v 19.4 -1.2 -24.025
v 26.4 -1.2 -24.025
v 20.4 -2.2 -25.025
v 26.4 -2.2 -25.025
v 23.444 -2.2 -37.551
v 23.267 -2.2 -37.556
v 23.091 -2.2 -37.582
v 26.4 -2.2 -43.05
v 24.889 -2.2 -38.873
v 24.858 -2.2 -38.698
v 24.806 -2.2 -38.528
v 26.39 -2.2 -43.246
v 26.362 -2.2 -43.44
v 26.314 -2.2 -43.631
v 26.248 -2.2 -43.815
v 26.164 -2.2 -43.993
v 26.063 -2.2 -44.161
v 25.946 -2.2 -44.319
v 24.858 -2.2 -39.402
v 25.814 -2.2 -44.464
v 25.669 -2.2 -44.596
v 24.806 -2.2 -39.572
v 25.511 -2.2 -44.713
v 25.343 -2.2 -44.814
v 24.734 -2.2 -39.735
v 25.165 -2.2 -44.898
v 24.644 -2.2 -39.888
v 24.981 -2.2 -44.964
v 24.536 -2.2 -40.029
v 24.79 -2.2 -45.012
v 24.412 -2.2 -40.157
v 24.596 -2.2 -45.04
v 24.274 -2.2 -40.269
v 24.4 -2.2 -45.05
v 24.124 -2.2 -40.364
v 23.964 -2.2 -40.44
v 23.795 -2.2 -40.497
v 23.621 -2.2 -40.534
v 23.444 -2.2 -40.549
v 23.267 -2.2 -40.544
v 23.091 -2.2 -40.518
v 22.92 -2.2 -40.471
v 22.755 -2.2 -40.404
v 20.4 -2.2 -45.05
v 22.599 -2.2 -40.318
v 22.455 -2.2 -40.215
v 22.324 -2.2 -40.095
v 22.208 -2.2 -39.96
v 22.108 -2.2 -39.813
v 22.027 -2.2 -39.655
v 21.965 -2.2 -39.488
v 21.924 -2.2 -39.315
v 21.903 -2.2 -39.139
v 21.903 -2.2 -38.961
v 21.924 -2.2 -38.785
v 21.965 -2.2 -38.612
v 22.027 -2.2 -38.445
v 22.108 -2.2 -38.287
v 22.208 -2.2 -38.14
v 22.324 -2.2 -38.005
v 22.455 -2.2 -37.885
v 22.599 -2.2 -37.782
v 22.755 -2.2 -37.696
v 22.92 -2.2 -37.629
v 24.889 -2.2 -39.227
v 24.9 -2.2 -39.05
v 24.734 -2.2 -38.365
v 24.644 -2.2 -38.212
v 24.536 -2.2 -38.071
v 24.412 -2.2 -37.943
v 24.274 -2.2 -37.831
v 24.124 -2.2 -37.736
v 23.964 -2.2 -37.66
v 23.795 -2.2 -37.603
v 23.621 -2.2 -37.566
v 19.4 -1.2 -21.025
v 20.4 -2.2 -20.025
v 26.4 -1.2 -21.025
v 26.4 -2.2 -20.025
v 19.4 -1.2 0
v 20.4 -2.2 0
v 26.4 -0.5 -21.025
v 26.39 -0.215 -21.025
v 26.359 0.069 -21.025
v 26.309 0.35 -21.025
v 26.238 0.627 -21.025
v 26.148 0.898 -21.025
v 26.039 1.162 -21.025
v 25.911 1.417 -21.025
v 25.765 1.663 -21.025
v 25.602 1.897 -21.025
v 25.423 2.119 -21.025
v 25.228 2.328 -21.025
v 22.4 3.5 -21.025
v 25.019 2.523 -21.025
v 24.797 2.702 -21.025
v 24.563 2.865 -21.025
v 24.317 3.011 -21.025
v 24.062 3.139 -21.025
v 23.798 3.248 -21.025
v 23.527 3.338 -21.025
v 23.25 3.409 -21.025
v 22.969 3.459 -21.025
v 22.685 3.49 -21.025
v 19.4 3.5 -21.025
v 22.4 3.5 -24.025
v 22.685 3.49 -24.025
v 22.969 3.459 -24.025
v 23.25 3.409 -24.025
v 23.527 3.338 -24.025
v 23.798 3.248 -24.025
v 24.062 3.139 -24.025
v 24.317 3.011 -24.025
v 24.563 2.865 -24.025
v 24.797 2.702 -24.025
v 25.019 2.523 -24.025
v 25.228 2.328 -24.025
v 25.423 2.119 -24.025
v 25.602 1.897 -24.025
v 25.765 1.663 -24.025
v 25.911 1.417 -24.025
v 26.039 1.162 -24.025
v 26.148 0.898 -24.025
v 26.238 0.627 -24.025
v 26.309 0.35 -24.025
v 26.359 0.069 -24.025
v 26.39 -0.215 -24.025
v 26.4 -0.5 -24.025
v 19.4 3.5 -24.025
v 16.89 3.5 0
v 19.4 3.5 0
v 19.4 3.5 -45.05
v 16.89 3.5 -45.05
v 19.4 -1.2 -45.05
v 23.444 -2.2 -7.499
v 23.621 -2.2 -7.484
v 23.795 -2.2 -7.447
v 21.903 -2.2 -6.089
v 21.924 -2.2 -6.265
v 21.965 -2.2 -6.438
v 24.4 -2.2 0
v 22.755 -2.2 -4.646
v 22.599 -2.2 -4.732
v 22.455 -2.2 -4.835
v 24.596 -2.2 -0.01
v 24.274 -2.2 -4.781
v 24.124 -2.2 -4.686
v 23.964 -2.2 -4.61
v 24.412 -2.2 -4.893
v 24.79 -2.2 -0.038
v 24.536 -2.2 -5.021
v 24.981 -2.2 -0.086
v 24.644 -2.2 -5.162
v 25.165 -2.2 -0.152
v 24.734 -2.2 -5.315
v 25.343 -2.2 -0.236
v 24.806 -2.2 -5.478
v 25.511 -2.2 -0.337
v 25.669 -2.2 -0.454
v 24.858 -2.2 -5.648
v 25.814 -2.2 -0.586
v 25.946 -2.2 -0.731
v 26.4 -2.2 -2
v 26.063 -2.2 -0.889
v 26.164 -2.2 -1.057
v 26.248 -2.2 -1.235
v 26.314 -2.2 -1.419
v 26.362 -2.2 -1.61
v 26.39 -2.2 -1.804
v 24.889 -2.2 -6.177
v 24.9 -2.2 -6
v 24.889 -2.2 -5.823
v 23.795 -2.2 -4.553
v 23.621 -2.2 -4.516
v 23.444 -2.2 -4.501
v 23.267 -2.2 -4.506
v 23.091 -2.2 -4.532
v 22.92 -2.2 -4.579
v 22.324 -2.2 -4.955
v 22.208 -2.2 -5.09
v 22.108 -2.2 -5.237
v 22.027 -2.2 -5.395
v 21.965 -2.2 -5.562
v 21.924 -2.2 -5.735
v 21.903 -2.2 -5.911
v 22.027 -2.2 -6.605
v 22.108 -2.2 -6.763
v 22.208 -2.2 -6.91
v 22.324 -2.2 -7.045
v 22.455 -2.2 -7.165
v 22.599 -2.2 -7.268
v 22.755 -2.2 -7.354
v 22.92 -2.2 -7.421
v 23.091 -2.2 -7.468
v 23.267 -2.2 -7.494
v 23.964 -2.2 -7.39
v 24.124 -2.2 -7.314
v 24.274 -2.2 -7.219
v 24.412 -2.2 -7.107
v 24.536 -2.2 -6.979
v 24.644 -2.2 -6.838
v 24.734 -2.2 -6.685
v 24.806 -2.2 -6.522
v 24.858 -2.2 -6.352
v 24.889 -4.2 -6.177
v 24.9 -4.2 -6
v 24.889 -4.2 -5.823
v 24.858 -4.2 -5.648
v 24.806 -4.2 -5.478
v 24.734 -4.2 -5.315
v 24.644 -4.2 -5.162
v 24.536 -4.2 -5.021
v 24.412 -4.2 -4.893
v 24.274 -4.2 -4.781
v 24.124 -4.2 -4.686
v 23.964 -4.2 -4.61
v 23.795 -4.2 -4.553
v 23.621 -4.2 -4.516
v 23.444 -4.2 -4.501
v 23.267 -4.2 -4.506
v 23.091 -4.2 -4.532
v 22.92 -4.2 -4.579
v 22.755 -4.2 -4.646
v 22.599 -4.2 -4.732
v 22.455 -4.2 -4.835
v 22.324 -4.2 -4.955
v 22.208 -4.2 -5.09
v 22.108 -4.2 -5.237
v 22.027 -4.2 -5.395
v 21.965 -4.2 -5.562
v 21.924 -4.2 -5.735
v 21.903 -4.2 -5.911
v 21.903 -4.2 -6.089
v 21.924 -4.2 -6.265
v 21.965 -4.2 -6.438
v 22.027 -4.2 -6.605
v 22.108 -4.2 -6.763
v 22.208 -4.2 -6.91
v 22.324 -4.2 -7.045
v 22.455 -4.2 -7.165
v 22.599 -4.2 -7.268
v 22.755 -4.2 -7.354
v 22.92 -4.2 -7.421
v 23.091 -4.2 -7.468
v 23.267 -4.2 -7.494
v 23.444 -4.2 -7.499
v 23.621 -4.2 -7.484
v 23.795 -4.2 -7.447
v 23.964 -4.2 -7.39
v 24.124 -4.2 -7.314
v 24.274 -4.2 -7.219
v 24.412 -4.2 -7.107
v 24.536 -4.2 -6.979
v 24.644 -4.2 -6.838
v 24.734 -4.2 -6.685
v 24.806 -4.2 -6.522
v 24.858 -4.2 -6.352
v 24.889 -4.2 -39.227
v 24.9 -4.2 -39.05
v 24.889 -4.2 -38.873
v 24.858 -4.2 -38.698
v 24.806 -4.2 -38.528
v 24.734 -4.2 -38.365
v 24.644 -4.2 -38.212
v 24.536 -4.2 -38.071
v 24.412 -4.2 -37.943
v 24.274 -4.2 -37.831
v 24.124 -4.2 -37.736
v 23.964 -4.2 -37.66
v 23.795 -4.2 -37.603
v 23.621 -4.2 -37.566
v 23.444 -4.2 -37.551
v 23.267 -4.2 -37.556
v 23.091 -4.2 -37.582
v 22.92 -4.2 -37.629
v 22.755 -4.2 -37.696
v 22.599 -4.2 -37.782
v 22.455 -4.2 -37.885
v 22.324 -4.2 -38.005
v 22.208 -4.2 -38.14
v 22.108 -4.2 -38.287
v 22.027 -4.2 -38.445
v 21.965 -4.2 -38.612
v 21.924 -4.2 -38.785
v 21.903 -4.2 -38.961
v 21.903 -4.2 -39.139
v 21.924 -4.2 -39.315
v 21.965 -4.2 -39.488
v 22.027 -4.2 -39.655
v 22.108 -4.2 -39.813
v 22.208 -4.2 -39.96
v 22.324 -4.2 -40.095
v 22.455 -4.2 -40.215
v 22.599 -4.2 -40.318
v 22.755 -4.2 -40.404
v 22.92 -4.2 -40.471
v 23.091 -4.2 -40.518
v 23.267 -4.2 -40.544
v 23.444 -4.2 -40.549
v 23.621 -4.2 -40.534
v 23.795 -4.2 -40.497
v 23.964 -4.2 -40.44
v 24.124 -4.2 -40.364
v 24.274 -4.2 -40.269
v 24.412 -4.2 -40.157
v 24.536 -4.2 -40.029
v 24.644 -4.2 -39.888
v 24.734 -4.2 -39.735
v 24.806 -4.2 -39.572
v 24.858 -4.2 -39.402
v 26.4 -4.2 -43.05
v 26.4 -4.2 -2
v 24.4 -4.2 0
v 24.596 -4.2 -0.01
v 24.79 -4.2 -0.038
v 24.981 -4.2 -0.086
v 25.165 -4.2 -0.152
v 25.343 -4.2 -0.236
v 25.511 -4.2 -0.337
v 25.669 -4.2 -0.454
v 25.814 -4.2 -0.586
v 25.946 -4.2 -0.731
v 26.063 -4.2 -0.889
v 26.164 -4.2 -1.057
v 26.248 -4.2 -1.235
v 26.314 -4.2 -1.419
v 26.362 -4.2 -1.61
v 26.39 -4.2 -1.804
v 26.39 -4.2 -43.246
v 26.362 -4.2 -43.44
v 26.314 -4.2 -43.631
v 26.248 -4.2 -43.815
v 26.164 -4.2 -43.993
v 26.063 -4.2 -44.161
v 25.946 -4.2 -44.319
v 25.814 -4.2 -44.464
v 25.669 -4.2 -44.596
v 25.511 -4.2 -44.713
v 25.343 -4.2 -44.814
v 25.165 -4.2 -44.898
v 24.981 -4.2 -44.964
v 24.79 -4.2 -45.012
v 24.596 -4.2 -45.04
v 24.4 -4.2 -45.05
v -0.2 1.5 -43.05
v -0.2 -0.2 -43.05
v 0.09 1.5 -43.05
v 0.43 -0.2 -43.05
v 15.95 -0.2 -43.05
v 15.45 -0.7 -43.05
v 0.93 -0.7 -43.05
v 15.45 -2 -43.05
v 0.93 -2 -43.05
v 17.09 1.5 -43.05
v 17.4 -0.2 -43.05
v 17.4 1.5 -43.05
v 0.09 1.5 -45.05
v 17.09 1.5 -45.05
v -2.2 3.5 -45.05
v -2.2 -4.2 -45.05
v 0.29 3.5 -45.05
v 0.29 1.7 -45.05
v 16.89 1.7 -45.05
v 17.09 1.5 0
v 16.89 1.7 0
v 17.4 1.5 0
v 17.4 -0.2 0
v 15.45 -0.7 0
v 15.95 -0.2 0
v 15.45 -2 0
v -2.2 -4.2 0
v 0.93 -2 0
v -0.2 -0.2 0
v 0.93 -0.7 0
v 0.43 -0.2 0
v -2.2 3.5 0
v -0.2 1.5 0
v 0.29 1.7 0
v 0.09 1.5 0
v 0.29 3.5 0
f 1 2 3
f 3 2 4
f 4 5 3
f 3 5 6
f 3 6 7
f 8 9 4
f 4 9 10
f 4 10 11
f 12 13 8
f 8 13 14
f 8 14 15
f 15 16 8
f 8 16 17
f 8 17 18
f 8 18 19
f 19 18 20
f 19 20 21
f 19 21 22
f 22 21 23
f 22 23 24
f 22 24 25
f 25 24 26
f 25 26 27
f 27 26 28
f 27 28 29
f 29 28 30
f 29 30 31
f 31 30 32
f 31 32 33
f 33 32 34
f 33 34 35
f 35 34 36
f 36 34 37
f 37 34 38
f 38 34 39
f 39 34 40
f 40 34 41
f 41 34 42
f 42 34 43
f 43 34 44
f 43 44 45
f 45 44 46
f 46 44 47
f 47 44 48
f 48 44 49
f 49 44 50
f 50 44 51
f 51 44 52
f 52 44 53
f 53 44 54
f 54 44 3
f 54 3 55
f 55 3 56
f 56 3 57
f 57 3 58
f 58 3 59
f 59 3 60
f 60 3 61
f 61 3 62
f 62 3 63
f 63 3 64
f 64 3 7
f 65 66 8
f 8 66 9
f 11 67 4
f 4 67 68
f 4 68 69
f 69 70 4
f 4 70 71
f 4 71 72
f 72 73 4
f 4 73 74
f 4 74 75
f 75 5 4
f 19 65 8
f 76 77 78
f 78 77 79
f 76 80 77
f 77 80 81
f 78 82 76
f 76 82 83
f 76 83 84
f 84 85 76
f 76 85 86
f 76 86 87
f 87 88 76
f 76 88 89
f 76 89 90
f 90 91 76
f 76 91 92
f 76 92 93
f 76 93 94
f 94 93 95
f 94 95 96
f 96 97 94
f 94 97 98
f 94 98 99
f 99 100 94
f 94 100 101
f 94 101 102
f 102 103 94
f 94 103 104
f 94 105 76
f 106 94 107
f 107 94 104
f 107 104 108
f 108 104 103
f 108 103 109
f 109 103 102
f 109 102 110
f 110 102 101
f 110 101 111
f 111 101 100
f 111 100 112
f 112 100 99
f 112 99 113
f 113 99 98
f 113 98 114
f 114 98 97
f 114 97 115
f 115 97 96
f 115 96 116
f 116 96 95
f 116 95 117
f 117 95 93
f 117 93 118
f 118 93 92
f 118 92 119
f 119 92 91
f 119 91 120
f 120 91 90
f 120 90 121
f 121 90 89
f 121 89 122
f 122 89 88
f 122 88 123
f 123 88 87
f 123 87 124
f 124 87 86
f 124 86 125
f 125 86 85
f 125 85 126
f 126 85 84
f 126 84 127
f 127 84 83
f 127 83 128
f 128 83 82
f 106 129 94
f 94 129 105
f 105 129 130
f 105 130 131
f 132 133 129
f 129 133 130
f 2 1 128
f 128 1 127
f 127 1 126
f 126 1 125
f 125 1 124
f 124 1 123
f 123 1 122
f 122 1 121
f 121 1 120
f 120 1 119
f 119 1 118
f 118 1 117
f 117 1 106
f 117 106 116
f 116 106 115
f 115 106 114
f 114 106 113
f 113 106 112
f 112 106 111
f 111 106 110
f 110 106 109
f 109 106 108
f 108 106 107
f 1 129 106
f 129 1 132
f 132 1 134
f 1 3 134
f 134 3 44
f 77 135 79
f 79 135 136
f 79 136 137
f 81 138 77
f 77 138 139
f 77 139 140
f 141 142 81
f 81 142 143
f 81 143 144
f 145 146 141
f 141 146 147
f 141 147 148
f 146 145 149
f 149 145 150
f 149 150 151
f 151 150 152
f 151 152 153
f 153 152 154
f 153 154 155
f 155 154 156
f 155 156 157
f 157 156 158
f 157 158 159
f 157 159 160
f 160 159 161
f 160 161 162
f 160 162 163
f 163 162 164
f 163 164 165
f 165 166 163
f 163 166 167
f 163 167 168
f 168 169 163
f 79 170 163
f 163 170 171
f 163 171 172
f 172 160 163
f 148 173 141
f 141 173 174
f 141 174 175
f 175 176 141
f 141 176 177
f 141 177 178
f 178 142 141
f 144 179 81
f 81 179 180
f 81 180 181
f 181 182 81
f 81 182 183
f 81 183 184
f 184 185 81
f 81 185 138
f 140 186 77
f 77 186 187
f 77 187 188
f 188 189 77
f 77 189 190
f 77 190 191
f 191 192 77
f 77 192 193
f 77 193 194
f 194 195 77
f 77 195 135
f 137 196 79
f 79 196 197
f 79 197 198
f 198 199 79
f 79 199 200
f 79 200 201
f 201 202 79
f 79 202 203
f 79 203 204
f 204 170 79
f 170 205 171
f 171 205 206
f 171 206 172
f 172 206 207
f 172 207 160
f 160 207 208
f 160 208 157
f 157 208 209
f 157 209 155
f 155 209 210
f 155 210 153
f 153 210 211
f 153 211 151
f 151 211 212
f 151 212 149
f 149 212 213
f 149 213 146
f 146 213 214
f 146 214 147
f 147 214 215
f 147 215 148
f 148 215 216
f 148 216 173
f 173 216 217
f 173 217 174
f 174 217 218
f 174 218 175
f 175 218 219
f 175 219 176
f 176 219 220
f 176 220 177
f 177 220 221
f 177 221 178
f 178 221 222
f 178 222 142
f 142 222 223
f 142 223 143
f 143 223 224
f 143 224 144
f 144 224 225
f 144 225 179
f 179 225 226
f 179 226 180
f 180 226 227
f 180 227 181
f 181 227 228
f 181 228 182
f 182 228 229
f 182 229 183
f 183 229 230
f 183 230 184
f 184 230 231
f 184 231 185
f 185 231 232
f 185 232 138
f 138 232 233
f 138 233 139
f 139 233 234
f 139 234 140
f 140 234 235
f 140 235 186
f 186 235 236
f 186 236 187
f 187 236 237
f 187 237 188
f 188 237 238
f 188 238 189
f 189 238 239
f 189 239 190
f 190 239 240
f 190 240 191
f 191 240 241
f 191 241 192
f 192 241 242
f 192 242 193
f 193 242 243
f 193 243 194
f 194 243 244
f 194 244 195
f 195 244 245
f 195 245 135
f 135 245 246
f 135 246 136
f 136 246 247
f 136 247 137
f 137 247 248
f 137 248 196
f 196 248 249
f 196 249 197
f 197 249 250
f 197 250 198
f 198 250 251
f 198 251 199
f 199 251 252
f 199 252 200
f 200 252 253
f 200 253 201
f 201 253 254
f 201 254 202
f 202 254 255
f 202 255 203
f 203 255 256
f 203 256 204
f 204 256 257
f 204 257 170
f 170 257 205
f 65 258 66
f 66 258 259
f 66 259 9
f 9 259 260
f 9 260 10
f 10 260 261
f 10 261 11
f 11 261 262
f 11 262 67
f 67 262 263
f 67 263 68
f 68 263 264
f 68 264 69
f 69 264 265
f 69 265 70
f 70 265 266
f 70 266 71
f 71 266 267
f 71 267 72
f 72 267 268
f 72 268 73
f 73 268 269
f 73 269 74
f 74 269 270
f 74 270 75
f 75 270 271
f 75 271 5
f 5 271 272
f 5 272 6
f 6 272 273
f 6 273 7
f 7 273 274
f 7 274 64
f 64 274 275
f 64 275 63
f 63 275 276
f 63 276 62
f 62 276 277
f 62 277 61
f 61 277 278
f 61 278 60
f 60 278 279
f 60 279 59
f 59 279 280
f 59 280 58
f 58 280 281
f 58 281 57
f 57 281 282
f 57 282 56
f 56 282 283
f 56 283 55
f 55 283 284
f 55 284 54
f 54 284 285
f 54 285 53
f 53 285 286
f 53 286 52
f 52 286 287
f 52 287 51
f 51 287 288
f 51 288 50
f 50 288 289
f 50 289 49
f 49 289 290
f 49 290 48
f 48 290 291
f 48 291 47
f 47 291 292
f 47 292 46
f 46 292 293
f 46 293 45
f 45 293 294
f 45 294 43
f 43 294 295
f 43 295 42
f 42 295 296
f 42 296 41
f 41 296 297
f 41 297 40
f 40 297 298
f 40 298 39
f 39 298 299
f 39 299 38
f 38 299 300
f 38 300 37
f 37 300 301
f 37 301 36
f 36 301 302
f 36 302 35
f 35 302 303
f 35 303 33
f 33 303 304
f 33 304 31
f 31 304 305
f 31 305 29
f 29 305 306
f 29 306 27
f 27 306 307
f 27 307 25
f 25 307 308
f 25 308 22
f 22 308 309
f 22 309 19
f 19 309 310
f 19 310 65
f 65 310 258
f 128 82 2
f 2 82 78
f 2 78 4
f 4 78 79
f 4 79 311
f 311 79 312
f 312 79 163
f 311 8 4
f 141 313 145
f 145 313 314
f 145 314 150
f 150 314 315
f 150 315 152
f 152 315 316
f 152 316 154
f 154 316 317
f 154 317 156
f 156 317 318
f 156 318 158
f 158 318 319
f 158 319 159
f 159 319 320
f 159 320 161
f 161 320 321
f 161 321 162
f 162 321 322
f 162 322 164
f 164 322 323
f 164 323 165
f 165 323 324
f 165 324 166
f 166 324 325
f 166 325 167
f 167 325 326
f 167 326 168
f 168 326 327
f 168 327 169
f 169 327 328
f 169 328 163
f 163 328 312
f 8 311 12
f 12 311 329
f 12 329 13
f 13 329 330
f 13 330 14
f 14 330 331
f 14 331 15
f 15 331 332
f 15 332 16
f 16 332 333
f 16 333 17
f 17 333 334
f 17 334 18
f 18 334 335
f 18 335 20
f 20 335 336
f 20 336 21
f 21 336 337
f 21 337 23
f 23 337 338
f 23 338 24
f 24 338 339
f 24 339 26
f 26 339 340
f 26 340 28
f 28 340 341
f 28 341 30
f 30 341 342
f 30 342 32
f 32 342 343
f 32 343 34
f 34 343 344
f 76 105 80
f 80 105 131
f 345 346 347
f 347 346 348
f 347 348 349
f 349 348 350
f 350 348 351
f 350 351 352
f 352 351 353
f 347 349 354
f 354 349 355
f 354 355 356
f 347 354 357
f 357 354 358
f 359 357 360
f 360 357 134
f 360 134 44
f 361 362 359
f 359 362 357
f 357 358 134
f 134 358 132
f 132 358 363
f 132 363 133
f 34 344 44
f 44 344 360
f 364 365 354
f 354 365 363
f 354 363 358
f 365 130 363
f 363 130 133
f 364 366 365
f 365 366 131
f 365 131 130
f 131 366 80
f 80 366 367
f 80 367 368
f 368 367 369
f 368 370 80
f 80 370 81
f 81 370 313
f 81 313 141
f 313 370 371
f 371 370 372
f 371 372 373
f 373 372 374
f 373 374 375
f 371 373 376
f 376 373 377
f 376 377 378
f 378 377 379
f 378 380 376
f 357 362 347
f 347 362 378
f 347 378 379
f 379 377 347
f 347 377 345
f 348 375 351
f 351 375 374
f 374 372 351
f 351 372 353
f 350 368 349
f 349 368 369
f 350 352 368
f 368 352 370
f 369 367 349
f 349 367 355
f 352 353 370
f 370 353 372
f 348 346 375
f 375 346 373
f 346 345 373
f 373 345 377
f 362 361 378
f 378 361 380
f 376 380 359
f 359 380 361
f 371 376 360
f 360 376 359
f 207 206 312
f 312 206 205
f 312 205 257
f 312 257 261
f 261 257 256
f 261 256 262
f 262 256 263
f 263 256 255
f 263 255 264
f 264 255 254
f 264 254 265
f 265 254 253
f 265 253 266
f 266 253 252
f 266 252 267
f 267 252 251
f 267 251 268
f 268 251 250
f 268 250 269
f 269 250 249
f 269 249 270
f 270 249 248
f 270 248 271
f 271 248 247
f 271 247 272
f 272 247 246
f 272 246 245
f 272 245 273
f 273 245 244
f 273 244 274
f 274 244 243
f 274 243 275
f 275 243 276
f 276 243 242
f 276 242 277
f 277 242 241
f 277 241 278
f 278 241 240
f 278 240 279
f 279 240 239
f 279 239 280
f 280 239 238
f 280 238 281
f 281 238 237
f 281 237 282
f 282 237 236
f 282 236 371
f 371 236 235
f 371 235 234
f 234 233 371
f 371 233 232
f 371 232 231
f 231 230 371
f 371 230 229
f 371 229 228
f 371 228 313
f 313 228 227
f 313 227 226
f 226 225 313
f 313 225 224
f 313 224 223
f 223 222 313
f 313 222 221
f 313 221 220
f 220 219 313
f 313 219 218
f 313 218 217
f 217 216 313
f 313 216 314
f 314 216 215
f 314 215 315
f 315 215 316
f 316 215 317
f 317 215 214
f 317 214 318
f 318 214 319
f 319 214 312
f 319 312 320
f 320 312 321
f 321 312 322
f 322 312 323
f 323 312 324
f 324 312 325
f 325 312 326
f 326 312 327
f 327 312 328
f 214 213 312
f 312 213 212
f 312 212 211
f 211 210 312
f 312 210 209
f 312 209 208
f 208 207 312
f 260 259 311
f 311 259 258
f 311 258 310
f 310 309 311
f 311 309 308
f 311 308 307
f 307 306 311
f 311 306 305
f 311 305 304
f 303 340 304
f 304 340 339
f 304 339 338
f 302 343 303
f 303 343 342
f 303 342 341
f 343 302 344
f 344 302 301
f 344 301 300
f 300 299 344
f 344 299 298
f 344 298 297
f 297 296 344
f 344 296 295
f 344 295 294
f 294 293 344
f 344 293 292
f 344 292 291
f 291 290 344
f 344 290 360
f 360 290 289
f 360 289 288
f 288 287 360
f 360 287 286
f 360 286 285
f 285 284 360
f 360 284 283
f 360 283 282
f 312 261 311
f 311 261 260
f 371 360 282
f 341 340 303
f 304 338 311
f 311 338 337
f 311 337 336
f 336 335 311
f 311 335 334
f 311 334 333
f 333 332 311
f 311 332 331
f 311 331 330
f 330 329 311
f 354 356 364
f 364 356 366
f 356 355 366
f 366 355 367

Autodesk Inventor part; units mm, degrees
ref_plane "YZ Plane" through (0, 0, 0) normal (1, 0, 0) x (0, 1, 0)
ref_plane "XZ Plane" through (0, 0, 0) normal (0, 1, 0) x (-1, 0, 0)
sketch "Sketch1" plane through (0, 0, 0) normal (0, 0, 1) x (1, 0, 0)
  line L0 (0, 0) -> (0, 1.3) projected
  line L1 (0, 0) -> (17.2, 0) projected
  line L2 (17.2, 0) -> (17.2, 1.3) projected
  line L3 (0, 1.3) -> (17.2, 1.3) projected
  line L4 (-0.2, -0.2) -> (-0.2, 1.5)
  line L5 (17.4, 1.5) -> (17.4, -0.2)
  line L6 (-2.2, 3.5) -> (-2.2, -2.2)
  line L7 (19.4, -2.2) -> (19.4, 3.5)
  line L8 (0.49, 2.4) -> (0.49, 1.65)
  line L9 (0.29, 2.4) -> (0.29, 1.65)
  line L10 (16.69, 2.4) -> (16.69, 1.65)
  line L11 (16.89, 2.4) -> (16.89, 1.65)
  line L12 (16.89, 1.5) -> (16.89, 3.5)
  line L13 (0.29, 1.5) -> (0.29, 3.5)
  line L14 (19.4, 3.5) -> (16.89, 3.5)
  line L15 (0.29, 3.5) -> (-2.2, 3.5)
  line L16 (-0.2, 1.5) -> (0.29, 1.5)
  line L17 (16.89, 1.5) -> (17.4, 1.5)
  line L18 (15.45, -2) -> (0.93, -2)
  line L19 (-2, -2) -> (-2, 3.3)
  line L20 (19.2, 3.3) -> (19.2, -2)
  line L21 (1.13, -0.1) -> (1.13, 0)
  line L22 (0.93, -0.1) -> (0.93, 0)
  line L23 (0.93, 0) -> (0.93, -2)
  line L24 (15.25, -0.1) -> (15.25, 1.4)
  line L25 (15.45, -0.1) -> (15.45, 1.4)
  line L26 (15.45, 1.3) -> (15.45, -2)
  line L27 (-2.2, -2.2) -> (-2.2, -4.2)
  line L28 (-2.2, -4.2) -> (19.4, -4.2)
  line L29 (19.4, -4.2) -> (19.4, -2.2)
  line L30 (17.4, -0.2) -> (15.45, -0.2)
  line L31 (0.93, -0.2) -> (-0.2, -0.2)
  line L32 (0.49, -2.2) -> (1.13, -2.2)
  line L33 (15.25, -2.2) -> (16.89, -2.2)
  line L34 (-2.2, -2.2) -> (-2, -2.2)
  line L35 (-0.2, -2.2) -> (0.29, -2.2)
  line L36 (17.2, -2.2) -> (17.4, -2.2)
  line L37 (19.2, -2.2) -> (19.4, -2.2)
  line L38 (0.29, 3.3) -> (1.13, 3.3)
  line L39 (15.25, 3.3) -> (16.89, 3.3)
  dimension "d2" = 0.2
  dimension "d3" = 0.2
  dimension "d4" = 2
  dimension "d5" = 0.2
  dimension "d6" = 0.2
  dimension "d7" = 2
ref_plane "Work Plane1" through (0, 0, -43.05) normal (0, 0, -1) x (0, 1, 0)
extrude "Extrusion1" add sketch "Sketch1" against normal up to surface (43.05 mm away) contours L23 L18 L26 L30 L5 L17 L12 L11 L14 L7 L29 L28 L27 L6 L15 L13 L9 L16 L4 L31
chamfer "Chamfer1" distance 0.5 angle 45 2 edges at (15.45, -0.2, -21.525) (0.93, -0.2, -21.525)
chamfer "Chamfer2" distance 0.2 angle 45 2 edges at (0.29, 1.5, -21.525) (16.89, 1.5, -21.525)
sketch "Sketch2" plane through (19.4, -4.2, -43.05) normal (0, 0, -1) x (-1, 0, 0)
  line L0 (2.51, 5.9) -> (2.31, 5.7) projected
  line L1 (2.51, 7.7) -> (2.51, 5.9) projected
  line L2 (0, 7.7) -> (2.51, 7.7) projected
  line L3 (0, 0) -> (0, 7.7) projected
  line L4 (21.6, 0) -> (0, 0) projected
  line L5 (21.6, 7.7) -> (21.6, 0) projected
  line L6 (19.11, 7.7) -> (21.6, 7.7) projected
  line L7 (19.11, 5.9) -> (19.11, 7.7) projected
  line L8 (19.31, 5.7) -> (19.11, 5.9) projected
  line L9 (19.6, 5.7) -> (19.31, 5.7) projected
  line L10 (19.6, 4) -> (19.6, 5.7) projected
  line L11 (18.97, 4) -> (19.6, 4) projected
  line L12 (18.47, 3.5) -> (18.97, 4) projected
  line L13 (18.47, 2.2) -> (18.47, 3.5) projected
  line L14 (3.95, 2.2) -> (18.47, 2.2) projected
  line L15 (3.95, 3.5) -> (3.95, 2.2) projected
  line L16 (3.45, 4) -> (3.95, 3.5) projected
  line L17 (2, 4) -> (3.45, 4) projected
  line L18 (2, 5.7) -> (2, 4) projected
  line L19 (2.31, 5.7) -> (2, 5.7) projected
  line L20 (0, 5.7) -> (21.6, 5.7)
  point P0 (19.4, 4.2)
extrude "Extrusion2" add sketch "Sketch2" along normal blind 2
sketch "Sketch3" plane through (-2.2, -4.2, 0) normal (0, -1, 0) x (1, 0, 0)
  line L0 (21.6, 0) -> (21.6, -45.05) projected
  line L1 (21.6, 0) -> (26.6, 0)
  line L2 (28.6, -2) -> (28.6, -43.05)
  line L3 (26.6, -45.05) -> (21.6, -45.05)
  line L4 (28.6, 0) -> (25.6, 0)
  line L5 (25.6, 0) -> (25.6, -45.05)
  line L6 (25.6, 0) -> (25.6, -6)
  line L7 (25.6, -45.05) -> (25.6, -39.05)
  circle A0 centre (25.6, -6) radius 1.5
  circle A1 centre (25.6, -39.05) radius 1.5
  arc A2 (28.6, -2) -> (26.6, 0) centre (26.6, -2) ccw
  arc A3 (26.6, -45.05) -> (28.6, -43.05) centre (26.6, -43.05) ccw
  point P0 (2.2, 0)
  dimension "d18" = 7
  dimension "d19" = 3
  dimension "d20" = 6
  dimension "d21" = 6
  dimension "d22" = 3
  dimension "d23" = 3
  dimension "d24" = 2
extrude "Extrusion3" add sketch "Sketch3" against normal blind 2 contours L1 L5 A0 A1 L3 L0 | L1 A2 L2 A3 L3 L5 A1 A0
chamfer "Chamfer3" distance 1 angle 45 1 edges at (19.4, -2.2, -22.525)
sketch "Sketch4" plane through (26.4, -4.2, -2) normal (1, 0, 0) x (0, 0, -1)
  line L0 (0, 2) -> (41.05, 2) projected
  line L1 (20.525, 2) -> (20.525, 7.7)
  line L2 (-2, 7.7) -> (43.05, 7.7) projected
  line L3 (22.025, 7.7) -> (19.025, 7.7)
  line L4 (19.025, 7.7) -> (19.025, 2)
  line L5 (19.025, 2) -> (22.025, 2)
  line L6 (22.025, 2) -> (22.025, 7.7)
  line L7 (22.025, 7.7) -> (19.025, 2) construction
  line L8 (19.025, 7.7) -> (22.025, 2) construction
  point P0 (-2, 4.2)
  point P1 (20.525, 4.85)
  point P2 (19.025, 7.7)
  point P3 (22.025, 2)
  point P4 (22.025, 7.7)
  dimension "d30" = 3
extrude "Extrusion4" add sketch "Sketch4" against normal up to surface (7 mm away)
fillet "Fillet1" radius 4 1 edges at (26.4, 3.5, -22.525)
chamfer "Chamfer4" distance 1 angle 45 2 edges at (23.4, -2.2, -21.025) (23.4, -2.2, -24.025)
properties part number "relay_case_3DPrint"
